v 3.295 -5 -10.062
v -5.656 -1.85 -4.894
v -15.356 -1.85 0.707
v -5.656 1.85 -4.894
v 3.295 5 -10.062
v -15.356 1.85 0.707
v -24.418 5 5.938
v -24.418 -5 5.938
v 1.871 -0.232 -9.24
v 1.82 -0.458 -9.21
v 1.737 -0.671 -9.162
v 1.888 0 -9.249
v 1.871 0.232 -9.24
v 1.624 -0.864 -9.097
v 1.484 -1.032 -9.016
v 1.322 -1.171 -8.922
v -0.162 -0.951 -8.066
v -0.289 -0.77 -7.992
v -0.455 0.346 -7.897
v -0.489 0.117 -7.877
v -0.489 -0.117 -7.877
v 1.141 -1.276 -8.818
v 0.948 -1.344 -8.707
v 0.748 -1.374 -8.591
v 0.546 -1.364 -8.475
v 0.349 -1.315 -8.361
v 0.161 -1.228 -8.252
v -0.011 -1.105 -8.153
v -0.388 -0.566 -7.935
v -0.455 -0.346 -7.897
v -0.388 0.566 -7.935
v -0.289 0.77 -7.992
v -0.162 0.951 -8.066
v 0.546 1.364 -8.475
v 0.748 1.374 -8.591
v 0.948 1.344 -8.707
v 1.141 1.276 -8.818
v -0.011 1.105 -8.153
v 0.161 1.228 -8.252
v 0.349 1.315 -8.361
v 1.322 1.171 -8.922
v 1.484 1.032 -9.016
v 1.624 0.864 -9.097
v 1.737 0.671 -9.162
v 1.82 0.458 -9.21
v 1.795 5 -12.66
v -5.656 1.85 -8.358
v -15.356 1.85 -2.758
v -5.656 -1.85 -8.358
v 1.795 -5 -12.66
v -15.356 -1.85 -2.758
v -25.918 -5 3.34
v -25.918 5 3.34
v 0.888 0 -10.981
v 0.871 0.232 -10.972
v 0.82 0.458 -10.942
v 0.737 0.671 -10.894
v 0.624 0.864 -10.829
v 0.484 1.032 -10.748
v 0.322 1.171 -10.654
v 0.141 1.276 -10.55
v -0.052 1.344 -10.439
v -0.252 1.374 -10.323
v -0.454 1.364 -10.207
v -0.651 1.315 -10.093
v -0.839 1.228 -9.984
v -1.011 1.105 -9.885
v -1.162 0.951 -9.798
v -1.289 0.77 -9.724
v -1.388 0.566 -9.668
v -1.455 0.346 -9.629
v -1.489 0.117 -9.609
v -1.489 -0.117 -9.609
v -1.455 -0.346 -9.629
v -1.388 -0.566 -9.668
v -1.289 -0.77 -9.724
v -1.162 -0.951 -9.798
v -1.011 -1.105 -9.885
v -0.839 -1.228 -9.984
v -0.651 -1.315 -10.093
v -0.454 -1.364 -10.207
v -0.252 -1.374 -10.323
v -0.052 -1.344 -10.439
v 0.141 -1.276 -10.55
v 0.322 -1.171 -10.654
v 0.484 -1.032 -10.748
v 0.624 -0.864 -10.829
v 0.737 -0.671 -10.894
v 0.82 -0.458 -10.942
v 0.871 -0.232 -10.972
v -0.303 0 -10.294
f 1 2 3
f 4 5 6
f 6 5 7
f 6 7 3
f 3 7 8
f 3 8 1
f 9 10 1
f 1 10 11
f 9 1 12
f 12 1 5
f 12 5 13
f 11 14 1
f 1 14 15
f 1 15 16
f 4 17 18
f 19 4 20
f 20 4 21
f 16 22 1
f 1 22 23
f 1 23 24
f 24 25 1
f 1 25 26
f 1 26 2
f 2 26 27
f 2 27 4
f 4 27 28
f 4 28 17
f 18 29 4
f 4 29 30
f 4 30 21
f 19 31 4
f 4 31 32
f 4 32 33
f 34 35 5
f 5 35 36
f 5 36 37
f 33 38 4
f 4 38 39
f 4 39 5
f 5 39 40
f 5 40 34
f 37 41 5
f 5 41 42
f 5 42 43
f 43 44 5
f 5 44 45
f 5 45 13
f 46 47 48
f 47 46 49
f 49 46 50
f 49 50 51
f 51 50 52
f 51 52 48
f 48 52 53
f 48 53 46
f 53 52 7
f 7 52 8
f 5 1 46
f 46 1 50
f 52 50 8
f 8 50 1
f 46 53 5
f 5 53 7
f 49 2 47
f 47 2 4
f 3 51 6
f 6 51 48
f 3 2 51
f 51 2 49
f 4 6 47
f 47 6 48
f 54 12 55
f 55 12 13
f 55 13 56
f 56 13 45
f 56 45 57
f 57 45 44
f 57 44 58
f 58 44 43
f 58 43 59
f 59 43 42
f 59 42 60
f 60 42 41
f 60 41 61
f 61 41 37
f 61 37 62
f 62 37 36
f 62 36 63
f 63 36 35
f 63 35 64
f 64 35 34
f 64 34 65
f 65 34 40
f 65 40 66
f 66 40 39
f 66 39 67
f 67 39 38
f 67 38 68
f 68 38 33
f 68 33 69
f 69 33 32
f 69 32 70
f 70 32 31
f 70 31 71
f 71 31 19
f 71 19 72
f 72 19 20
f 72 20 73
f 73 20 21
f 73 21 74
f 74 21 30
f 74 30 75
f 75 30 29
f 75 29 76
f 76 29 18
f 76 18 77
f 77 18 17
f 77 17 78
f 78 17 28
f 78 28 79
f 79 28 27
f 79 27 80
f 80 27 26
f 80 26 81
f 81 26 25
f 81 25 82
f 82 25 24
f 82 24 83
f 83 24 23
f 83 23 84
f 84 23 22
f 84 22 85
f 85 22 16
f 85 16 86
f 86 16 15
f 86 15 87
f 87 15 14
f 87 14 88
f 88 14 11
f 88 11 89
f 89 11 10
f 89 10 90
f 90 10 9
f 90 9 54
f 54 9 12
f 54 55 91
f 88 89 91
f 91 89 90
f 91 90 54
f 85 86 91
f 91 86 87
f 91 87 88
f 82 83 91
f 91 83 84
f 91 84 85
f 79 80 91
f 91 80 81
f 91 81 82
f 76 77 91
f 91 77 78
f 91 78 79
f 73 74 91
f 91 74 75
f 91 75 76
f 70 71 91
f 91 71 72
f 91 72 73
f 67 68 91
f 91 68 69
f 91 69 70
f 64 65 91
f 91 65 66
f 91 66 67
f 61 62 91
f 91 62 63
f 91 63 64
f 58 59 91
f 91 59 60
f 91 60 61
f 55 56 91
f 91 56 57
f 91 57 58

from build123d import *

# Parameters (mm, degrees)
EXTRUDE_1_DEPTH      = 5
EXTRUDE_1_DEPTH_BACK = 5
CUT_EXTRUDE_1_DEPTH  = 1.85
SKETCH_3_R           = 1.375
CUT_EXTRUDE_2_DEPTH  = 2


with BuildPart() as part:
    # 草圖1 → 填料-伸長1 (new, two sides: drawn at the far end of the back side and taken through both)
    with BuildSketch(Plane(origin=(0, 0, 0), x_dir=(1, 0, 0), z_dir=(0, 1, 0)).offset(-EXTRUDE_1_DEPTH_BACK)):
        Polygon((-24.417534462, -5.938079912), (-25.917534462, -3.340003701), (1.795278459, 12.659996299), (3.295278459, 10.061920088), align=None)
    extrude(amount=EXTRUDE_1_DEPTH + EXTRUDE_1_DEPTH_BACK)

    # 草圖2 → 除料-伸長1 (cut, symmetric)
    with BuildSketch(Plane(origin=(0, 0, 0), x_dir=(1, 0, 0), z_dir=(0, 1, 0))):
        Polygon((-15.35631853, 2.4), (-15.35631853, -0.706584455), (-5.65631853, 4.893713156), (-5.65631853, 8.357814772), (-15.35631853, 2.75751716), align=None)
    extrude(amount=CUT_EXTRUDE_1_DEPTH, both=True, mode=Mode.SUBTRACT)

    # 草圖3 → 除料-伸長2 (cut)
    with BuildSketch(Plane(origin=(-3.533119589, 0, -6.119542637), x_dir=(0.8660254037844386, 0, -0.5000000000000003), z_dir=(0.5000000000000003, 0, 0.8660254037844386))):
        with Locations((4.884754902, 0)):
            Circle(SKETCH_3_R)
    extrude(amount=-CUT_EXTRUDE_2_DEPTH, mode=Mode.SUBTRACT)


solid = part.part
